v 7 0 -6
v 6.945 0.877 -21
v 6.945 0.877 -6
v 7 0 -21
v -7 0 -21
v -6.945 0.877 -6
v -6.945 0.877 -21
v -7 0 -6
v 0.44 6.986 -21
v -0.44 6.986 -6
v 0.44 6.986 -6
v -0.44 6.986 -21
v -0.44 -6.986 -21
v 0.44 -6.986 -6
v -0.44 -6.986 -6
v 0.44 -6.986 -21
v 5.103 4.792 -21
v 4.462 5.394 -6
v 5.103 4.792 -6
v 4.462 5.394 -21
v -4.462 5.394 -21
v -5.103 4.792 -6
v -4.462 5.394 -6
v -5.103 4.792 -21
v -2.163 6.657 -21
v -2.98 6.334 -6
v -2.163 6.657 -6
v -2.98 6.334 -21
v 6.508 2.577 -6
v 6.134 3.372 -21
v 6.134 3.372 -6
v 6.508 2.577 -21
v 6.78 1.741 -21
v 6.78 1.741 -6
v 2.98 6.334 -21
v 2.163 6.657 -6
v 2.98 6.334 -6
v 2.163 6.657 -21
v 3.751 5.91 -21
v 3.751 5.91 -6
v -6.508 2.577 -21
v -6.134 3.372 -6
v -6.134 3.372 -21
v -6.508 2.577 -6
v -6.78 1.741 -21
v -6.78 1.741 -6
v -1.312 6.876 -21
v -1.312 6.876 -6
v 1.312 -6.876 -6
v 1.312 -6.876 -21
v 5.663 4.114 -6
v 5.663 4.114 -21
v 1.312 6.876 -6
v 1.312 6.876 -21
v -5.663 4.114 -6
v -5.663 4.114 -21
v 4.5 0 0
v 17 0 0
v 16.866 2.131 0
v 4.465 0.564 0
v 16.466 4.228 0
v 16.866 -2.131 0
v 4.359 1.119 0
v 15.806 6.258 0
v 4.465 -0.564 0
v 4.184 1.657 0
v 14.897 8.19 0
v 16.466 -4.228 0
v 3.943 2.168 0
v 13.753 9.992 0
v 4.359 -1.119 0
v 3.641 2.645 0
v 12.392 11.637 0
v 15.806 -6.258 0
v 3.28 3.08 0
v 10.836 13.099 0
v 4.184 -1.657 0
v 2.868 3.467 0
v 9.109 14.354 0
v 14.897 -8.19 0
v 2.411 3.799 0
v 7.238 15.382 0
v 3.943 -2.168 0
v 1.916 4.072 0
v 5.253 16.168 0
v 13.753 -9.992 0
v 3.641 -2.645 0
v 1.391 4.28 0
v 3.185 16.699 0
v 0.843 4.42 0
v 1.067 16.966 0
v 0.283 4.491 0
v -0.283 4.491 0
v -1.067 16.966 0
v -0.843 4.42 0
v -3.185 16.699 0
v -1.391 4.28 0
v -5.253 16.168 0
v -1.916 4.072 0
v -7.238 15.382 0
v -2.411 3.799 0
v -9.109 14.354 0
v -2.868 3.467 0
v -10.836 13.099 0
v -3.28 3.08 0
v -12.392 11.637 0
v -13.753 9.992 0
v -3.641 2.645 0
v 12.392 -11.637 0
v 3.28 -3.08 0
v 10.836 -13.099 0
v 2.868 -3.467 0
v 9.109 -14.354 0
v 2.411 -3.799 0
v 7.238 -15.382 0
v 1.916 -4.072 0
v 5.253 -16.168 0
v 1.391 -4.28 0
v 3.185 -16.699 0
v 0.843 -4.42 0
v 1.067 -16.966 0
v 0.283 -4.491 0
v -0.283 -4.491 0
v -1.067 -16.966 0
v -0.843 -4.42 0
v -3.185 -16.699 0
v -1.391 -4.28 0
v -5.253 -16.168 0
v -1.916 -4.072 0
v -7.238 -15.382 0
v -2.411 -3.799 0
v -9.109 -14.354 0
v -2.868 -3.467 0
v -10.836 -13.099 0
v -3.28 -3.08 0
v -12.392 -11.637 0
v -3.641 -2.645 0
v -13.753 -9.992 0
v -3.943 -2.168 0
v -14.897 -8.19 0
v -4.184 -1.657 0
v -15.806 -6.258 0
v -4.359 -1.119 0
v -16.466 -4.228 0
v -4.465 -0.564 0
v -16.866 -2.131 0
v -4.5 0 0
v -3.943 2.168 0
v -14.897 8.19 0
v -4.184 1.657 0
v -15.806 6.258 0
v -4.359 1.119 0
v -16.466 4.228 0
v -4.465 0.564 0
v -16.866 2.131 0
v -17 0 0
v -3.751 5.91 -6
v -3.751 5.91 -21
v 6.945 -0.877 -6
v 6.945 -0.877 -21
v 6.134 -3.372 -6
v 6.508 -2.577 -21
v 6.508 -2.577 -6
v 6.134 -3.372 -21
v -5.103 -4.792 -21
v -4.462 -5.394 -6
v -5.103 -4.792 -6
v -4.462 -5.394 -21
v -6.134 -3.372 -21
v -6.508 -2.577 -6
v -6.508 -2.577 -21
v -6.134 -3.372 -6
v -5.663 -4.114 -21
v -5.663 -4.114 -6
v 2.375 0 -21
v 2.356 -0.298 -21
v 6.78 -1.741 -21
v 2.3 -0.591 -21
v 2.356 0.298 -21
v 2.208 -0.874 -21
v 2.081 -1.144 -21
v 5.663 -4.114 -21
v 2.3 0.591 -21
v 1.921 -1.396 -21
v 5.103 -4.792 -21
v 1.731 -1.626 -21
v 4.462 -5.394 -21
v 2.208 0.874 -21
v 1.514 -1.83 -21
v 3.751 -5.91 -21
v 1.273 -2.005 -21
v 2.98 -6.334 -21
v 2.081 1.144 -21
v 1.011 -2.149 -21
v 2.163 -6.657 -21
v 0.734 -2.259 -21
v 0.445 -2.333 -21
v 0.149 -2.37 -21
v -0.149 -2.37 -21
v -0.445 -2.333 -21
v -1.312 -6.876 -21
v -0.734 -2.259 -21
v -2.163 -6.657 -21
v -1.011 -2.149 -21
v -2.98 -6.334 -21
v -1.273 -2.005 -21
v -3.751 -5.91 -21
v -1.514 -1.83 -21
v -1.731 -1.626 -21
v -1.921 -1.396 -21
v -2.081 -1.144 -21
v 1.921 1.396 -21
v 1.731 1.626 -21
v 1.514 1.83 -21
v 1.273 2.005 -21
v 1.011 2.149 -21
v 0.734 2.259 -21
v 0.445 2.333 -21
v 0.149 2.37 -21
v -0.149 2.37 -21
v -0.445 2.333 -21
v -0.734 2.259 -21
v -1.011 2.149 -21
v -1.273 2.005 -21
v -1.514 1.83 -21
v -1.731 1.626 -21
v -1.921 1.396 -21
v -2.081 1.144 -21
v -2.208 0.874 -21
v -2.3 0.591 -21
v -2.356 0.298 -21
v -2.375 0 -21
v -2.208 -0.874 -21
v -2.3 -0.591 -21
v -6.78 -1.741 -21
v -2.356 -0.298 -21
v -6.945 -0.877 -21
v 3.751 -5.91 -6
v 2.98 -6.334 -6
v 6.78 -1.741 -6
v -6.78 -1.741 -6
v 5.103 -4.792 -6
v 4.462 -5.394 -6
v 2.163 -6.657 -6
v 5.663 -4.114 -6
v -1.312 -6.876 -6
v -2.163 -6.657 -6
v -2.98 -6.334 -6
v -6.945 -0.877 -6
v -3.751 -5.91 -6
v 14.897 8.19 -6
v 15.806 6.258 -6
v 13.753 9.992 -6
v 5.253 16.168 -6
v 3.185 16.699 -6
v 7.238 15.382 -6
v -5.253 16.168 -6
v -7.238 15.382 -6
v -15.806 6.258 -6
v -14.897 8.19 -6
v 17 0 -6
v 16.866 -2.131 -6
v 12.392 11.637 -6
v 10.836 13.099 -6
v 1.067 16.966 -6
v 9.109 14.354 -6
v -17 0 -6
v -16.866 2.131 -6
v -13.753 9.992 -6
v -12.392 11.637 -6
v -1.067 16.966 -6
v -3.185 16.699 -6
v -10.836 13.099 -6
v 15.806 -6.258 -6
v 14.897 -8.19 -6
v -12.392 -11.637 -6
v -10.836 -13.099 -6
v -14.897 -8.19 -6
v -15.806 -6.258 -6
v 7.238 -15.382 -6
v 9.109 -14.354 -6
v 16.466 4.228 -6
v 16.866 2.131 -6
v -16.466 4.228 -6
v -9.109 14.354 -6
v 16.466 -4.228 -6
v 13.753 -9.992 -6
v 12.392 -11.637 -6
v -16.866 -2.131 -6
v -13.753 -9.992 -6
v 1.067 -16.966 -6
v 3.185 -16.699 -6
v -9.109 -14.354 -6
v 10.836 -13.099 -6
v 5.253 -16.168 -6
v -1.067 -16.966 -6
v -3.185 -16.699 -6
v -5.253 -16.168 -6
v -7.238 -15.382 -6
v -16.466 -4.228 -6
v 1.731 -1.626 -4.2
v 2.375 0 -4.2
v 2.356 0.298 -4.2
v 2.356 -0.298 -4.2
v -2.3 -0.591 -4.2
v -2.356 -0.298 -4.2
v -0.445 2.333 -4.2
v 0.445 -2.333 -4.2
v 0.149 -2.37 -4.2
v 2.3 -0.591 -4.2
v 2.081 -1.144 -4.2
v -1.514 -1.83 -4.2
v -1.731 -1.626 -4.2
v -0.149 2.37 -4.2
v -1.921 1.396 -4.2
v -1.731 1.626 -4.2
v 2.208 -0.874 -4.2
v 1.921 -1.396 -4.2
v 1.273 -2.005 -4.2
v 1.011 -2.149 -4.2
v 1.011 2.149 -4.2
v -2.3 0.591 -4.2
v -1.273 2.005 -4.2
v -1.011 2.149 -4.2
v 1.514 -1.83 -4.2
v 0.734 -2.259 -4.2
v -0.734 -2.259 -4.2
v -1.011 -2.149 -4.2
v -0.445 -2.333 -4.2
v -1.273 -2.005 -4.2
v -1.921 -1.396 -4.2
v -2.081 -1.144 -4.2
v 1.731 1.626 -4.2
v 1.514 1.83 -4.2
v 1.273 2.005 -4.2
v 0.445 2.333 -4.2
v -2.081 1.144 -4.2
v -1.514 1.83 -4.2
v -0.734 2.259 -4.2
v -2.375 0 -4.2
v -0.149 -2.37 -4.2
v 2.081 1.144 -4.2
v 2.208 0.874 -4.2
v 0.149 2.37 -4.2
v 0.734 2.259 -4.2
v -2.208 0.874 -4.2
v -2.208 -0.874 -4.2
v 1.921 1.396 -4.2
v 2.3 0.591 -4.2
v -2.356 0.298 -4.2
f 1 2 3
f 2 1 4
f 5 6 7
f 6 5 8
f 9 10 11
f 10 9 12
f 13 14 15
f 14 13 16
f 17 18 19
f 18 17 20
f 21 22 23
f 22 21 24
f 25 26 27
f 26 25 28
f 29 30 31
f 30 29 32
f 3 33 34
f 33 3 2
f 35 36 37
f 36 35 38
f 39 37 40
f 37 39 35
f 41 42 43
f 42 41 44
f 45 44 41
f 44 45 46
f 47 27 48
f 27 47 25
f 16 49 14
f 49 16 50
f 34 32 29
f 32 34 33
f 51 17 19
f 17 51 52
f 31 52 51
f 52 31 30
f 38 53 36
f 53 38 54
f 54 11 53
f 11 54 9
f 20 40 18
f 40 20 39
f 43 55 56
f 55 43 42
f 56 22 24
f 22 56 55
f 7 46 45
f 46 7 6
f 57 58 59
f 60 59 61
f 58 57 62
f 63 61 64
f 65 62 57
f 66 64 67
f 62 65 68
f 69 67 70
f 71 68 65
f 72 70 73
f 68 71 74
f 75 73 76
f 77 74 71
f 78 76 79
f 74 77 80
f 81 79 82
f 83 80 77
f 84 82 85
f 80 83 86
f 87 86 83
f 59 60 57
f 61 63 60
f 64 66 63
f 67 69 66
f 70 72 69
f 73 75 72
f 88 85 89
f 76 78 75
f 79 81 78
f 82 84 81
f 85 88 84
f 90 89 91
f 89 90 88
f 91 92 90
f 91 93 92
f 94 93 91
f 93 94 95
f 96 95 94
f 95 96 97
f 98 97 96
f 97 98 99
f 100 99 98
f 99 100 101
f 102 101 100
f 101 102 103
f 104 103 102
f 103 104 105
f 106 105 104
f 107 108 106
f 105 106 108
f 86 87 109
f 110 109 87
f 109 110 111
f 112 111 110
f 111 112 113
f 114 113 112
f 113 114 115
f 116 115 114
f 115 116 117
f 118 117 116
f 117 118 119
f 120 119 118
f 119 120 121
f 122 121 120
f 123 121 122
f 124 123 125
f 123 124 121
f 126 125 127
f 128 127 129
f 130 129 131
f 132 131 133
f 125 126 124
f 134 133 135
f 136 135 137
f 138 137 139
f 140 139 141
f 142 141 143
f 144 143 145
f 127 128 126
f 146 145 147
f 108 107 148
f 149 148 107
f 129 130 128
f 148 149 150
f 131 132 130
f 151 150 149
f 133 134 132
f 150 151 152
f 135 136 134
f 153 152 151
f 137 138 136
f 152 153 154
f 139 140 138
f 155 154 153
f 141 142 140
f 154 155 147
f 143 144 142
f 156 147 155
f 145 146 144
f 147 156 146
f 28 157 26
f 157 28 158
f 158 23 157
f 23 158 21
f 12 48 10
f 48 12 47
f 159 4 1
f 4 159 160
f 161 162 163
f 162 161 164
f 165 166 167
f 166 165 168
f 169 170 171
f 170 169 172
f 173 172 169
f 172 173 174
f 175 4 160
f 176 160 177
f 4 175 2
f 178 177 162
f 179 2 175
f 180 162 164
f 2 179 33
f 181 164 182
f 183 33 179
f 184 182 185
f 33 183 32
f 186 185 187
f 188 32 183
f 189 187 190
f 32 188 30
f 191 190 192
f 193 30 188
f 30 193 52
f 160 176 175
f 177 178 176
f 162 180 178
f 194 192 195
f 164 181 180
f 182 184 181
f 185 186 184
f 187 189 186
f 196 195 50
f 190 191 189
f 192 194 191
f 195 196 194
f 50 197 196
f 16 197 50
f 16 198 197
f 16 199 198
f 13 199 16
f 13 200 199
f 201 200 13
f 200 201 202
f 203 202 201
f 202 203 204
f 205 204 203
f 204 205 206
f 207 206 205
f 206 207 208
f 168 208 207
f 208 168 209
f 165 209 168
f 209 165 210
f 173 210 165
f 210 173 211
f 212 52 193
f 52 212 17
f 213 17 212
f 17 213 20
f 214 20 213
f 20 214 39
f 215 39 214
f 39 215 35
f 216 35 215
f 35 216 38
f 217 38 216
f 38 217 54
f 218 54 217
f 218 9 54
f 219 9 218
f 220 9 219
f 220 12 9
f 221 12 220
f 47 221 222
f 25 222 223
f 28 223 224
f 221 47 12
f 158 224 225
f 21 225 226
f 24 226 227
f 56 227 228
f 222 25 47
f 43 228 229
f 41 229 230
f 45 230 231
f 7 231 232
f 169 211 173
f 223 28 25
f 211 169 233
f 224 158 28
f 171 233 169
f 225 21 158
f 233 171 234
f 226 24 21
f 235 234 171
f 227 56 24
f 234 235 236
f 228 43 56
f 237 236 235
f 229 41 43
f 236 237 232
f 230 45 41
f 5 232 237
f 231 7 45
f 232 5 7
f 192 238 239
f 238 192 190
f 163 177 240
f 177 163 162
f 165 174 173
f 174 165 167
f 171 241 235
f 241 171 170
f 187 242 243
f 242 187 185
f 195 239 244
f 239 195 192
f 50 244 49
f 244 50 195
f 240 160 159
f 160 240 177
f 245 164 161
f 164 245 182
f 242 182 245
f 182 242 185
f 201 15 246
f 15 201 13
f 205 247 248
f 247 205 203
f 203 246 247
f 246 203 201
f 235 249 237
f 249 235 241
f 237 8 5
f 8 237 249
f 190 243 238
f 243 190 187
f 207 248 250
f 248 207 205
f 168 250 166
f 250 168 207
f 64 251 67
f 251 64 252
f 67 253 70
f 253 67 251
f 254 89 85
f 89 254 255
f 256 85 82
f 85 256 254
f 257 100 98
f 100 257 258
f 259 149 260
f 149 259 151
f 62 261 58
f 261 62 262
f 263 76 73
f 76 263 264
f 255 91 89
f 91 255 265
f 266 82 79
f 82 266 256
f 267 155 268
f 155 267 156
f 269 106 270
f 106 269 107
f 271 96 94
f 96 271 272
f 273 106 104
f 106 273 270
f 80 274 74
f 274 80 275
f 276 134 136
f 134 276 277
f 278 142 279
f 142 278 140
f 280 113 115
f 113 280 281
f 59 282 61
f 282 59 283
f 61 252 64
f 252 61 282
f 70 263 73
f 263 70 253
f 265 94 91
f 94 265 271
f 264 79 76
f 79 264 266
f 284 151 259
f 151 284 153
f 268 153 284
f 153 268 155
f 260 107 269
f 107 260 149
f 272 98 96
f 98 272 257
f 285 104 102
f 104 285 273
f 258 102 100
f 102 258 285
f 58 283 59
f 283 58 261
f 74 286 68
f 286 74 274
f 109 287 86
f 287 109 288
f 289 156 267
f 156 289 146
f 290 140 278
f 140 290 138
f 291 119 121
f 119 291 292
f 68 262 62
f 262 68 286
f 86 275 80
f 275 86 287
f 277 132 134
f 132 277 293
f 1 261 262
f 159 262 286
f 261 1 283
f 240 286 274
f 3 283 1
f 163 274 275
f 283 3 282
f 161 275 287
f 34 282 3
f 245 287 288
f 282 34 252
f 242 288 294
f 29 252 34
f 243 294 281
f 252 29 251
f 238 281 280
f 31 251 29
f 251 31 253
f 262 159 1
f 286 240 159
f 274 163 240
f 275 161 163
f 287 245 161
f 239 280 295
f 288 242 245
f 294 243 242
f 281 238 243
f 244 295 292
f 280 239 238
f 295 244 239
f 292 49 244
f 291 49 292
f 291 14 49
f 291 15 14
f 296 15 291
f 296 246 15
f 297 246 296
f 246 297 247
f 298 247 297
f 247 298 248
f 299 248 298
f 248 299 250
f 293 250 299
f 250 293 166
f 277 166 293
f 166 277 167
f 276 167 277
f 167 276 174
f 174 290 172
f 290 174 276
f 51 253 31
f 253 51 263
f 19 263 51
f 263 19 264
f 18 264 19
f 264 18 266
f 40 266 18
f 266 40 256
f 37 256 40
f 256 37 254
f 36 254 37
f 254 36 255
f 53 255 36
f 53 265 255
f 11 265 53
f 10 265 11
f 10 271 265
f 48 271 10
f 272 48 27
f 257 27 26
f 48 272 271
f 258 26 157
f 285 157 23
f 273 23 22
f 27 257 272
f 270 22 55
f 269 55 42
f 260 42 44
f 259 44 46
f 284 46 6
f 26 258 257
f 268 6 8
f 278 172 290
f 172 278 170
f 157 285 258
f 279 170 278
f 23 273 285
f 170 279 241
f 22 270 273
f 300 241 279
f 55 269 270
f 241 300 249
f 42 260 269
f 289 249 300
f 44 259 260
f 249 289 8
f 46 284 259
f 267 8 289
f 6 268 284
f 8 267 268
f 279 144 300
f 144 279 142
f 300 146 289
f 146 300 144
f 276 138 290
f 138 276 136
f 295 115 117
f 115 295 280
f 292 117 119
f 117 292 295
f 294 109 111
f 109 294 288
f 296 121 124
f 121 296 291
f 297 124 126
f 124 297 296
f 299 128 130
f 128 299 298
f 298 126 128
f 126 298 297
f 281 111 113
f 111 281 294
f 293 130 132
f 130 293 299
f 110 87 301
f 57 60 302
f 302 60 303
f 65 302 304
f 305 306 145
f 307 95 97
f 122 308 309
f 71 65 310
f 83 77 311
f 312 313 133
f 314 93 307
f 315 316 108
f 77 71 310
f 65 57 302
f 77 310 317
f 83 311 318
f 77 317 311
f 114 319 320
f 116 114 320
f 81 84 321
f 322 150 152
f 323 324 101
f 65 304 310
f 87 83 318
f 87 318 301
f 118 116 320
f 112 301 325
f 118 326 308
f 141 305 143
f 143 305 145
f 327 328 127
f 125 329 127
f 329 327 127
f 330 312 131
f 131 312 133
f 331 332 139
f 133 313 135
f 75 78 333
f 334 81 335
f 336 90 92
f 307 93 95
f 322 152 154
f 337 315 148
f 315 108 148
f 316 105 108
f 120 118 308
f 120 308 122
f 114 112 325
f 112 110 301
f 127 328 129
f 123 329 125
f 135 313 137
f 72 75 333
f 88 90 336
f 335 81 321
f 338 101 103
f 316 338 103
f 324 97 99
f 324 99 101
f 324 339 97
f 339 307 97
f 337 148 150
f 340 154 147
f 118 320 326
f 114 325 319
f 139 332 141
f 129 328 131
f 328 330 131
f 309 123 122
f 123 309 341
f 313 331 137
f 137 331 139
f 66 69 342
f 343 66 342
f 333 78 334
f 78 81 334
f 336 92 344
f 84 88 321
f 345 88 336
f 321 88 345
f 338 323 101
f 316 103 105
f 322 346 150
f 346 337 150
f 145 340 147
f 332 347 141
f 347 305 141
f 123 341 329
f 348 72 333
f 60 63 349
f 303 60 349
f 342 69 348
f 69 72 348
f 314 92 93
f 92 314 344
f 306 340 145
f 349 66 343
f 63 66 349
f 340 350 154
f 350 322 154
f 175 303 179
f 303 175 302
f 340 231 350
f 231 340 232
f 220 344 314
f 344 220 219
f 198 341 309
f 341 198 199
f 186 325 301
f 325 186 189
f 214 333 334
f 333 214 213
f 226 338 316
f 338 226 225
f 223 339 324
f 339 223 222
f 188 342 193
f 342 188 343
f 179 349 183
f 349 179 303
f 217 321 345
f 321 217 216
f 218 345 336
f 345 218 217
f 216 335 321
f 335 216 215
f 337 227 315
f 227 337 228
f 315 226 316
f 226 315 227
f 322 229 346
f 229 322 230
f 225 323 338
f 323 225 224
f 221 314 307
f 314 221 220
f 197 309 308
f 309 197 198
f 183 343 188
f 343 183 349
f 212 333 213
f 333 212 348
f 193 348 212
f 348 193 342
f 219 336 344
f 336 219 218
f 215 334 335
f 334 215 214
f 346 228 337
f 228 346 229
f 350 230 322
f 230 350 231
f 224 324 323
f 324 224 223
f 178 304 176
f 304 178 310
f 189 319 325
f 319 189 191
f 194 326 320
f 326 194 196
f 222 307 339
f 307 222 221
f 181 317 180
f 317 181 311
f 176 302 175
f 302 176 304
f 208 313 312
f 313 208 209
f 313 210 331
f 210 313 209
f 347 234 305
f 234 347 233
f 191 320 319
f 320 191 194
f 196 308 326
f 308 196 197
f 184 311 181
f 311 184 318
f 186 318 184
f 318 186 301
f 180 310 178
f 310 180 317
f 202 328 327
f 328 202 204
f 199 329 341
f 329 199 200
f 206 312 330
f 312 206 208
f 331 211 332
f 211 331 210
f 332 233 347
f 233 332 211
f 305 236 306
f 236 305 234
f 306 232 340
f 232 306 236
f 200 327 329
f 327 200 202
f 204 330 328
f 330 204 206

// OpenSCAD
$fn = 50;


difference() {
	union() {
		translate(v = [0, 0, -21.0000000000]) {
			cylinder(h = 21, r = 7.0000000000);
		}
		translate(v = [0, 0, -6.0000000000]) {
			cylinder(h = 6, r = 17.0000000000);
		}
	}
	union() {
		translate(v = [0, 0, 0]) {
			rotate(a = [0, 0, 0]) {
				difference() {
					union() {
						#translate(v = [0, 0, -21.0000000000]) {
							cylinder(h = 21, r = 2.2500000000);
						}
						#translate(v = [0, 0, -4.2000000000]) {
							cylinder(h = 4.2000000000, r = 7.0000000000, r1 = 2.3750000000, r2 = 4.5000000000);
						}
						#translate(v = [0, 0, -21.0000000000]) {
							cylinder(h = 21, r = 2.3750000000);
						}
						#translate(v = [0, 0, -21.0000000000]) {
							cylinder(h = 21, r = 2.2500000000);
						}
					}
					union();
				}
			}
		}
	}
}
